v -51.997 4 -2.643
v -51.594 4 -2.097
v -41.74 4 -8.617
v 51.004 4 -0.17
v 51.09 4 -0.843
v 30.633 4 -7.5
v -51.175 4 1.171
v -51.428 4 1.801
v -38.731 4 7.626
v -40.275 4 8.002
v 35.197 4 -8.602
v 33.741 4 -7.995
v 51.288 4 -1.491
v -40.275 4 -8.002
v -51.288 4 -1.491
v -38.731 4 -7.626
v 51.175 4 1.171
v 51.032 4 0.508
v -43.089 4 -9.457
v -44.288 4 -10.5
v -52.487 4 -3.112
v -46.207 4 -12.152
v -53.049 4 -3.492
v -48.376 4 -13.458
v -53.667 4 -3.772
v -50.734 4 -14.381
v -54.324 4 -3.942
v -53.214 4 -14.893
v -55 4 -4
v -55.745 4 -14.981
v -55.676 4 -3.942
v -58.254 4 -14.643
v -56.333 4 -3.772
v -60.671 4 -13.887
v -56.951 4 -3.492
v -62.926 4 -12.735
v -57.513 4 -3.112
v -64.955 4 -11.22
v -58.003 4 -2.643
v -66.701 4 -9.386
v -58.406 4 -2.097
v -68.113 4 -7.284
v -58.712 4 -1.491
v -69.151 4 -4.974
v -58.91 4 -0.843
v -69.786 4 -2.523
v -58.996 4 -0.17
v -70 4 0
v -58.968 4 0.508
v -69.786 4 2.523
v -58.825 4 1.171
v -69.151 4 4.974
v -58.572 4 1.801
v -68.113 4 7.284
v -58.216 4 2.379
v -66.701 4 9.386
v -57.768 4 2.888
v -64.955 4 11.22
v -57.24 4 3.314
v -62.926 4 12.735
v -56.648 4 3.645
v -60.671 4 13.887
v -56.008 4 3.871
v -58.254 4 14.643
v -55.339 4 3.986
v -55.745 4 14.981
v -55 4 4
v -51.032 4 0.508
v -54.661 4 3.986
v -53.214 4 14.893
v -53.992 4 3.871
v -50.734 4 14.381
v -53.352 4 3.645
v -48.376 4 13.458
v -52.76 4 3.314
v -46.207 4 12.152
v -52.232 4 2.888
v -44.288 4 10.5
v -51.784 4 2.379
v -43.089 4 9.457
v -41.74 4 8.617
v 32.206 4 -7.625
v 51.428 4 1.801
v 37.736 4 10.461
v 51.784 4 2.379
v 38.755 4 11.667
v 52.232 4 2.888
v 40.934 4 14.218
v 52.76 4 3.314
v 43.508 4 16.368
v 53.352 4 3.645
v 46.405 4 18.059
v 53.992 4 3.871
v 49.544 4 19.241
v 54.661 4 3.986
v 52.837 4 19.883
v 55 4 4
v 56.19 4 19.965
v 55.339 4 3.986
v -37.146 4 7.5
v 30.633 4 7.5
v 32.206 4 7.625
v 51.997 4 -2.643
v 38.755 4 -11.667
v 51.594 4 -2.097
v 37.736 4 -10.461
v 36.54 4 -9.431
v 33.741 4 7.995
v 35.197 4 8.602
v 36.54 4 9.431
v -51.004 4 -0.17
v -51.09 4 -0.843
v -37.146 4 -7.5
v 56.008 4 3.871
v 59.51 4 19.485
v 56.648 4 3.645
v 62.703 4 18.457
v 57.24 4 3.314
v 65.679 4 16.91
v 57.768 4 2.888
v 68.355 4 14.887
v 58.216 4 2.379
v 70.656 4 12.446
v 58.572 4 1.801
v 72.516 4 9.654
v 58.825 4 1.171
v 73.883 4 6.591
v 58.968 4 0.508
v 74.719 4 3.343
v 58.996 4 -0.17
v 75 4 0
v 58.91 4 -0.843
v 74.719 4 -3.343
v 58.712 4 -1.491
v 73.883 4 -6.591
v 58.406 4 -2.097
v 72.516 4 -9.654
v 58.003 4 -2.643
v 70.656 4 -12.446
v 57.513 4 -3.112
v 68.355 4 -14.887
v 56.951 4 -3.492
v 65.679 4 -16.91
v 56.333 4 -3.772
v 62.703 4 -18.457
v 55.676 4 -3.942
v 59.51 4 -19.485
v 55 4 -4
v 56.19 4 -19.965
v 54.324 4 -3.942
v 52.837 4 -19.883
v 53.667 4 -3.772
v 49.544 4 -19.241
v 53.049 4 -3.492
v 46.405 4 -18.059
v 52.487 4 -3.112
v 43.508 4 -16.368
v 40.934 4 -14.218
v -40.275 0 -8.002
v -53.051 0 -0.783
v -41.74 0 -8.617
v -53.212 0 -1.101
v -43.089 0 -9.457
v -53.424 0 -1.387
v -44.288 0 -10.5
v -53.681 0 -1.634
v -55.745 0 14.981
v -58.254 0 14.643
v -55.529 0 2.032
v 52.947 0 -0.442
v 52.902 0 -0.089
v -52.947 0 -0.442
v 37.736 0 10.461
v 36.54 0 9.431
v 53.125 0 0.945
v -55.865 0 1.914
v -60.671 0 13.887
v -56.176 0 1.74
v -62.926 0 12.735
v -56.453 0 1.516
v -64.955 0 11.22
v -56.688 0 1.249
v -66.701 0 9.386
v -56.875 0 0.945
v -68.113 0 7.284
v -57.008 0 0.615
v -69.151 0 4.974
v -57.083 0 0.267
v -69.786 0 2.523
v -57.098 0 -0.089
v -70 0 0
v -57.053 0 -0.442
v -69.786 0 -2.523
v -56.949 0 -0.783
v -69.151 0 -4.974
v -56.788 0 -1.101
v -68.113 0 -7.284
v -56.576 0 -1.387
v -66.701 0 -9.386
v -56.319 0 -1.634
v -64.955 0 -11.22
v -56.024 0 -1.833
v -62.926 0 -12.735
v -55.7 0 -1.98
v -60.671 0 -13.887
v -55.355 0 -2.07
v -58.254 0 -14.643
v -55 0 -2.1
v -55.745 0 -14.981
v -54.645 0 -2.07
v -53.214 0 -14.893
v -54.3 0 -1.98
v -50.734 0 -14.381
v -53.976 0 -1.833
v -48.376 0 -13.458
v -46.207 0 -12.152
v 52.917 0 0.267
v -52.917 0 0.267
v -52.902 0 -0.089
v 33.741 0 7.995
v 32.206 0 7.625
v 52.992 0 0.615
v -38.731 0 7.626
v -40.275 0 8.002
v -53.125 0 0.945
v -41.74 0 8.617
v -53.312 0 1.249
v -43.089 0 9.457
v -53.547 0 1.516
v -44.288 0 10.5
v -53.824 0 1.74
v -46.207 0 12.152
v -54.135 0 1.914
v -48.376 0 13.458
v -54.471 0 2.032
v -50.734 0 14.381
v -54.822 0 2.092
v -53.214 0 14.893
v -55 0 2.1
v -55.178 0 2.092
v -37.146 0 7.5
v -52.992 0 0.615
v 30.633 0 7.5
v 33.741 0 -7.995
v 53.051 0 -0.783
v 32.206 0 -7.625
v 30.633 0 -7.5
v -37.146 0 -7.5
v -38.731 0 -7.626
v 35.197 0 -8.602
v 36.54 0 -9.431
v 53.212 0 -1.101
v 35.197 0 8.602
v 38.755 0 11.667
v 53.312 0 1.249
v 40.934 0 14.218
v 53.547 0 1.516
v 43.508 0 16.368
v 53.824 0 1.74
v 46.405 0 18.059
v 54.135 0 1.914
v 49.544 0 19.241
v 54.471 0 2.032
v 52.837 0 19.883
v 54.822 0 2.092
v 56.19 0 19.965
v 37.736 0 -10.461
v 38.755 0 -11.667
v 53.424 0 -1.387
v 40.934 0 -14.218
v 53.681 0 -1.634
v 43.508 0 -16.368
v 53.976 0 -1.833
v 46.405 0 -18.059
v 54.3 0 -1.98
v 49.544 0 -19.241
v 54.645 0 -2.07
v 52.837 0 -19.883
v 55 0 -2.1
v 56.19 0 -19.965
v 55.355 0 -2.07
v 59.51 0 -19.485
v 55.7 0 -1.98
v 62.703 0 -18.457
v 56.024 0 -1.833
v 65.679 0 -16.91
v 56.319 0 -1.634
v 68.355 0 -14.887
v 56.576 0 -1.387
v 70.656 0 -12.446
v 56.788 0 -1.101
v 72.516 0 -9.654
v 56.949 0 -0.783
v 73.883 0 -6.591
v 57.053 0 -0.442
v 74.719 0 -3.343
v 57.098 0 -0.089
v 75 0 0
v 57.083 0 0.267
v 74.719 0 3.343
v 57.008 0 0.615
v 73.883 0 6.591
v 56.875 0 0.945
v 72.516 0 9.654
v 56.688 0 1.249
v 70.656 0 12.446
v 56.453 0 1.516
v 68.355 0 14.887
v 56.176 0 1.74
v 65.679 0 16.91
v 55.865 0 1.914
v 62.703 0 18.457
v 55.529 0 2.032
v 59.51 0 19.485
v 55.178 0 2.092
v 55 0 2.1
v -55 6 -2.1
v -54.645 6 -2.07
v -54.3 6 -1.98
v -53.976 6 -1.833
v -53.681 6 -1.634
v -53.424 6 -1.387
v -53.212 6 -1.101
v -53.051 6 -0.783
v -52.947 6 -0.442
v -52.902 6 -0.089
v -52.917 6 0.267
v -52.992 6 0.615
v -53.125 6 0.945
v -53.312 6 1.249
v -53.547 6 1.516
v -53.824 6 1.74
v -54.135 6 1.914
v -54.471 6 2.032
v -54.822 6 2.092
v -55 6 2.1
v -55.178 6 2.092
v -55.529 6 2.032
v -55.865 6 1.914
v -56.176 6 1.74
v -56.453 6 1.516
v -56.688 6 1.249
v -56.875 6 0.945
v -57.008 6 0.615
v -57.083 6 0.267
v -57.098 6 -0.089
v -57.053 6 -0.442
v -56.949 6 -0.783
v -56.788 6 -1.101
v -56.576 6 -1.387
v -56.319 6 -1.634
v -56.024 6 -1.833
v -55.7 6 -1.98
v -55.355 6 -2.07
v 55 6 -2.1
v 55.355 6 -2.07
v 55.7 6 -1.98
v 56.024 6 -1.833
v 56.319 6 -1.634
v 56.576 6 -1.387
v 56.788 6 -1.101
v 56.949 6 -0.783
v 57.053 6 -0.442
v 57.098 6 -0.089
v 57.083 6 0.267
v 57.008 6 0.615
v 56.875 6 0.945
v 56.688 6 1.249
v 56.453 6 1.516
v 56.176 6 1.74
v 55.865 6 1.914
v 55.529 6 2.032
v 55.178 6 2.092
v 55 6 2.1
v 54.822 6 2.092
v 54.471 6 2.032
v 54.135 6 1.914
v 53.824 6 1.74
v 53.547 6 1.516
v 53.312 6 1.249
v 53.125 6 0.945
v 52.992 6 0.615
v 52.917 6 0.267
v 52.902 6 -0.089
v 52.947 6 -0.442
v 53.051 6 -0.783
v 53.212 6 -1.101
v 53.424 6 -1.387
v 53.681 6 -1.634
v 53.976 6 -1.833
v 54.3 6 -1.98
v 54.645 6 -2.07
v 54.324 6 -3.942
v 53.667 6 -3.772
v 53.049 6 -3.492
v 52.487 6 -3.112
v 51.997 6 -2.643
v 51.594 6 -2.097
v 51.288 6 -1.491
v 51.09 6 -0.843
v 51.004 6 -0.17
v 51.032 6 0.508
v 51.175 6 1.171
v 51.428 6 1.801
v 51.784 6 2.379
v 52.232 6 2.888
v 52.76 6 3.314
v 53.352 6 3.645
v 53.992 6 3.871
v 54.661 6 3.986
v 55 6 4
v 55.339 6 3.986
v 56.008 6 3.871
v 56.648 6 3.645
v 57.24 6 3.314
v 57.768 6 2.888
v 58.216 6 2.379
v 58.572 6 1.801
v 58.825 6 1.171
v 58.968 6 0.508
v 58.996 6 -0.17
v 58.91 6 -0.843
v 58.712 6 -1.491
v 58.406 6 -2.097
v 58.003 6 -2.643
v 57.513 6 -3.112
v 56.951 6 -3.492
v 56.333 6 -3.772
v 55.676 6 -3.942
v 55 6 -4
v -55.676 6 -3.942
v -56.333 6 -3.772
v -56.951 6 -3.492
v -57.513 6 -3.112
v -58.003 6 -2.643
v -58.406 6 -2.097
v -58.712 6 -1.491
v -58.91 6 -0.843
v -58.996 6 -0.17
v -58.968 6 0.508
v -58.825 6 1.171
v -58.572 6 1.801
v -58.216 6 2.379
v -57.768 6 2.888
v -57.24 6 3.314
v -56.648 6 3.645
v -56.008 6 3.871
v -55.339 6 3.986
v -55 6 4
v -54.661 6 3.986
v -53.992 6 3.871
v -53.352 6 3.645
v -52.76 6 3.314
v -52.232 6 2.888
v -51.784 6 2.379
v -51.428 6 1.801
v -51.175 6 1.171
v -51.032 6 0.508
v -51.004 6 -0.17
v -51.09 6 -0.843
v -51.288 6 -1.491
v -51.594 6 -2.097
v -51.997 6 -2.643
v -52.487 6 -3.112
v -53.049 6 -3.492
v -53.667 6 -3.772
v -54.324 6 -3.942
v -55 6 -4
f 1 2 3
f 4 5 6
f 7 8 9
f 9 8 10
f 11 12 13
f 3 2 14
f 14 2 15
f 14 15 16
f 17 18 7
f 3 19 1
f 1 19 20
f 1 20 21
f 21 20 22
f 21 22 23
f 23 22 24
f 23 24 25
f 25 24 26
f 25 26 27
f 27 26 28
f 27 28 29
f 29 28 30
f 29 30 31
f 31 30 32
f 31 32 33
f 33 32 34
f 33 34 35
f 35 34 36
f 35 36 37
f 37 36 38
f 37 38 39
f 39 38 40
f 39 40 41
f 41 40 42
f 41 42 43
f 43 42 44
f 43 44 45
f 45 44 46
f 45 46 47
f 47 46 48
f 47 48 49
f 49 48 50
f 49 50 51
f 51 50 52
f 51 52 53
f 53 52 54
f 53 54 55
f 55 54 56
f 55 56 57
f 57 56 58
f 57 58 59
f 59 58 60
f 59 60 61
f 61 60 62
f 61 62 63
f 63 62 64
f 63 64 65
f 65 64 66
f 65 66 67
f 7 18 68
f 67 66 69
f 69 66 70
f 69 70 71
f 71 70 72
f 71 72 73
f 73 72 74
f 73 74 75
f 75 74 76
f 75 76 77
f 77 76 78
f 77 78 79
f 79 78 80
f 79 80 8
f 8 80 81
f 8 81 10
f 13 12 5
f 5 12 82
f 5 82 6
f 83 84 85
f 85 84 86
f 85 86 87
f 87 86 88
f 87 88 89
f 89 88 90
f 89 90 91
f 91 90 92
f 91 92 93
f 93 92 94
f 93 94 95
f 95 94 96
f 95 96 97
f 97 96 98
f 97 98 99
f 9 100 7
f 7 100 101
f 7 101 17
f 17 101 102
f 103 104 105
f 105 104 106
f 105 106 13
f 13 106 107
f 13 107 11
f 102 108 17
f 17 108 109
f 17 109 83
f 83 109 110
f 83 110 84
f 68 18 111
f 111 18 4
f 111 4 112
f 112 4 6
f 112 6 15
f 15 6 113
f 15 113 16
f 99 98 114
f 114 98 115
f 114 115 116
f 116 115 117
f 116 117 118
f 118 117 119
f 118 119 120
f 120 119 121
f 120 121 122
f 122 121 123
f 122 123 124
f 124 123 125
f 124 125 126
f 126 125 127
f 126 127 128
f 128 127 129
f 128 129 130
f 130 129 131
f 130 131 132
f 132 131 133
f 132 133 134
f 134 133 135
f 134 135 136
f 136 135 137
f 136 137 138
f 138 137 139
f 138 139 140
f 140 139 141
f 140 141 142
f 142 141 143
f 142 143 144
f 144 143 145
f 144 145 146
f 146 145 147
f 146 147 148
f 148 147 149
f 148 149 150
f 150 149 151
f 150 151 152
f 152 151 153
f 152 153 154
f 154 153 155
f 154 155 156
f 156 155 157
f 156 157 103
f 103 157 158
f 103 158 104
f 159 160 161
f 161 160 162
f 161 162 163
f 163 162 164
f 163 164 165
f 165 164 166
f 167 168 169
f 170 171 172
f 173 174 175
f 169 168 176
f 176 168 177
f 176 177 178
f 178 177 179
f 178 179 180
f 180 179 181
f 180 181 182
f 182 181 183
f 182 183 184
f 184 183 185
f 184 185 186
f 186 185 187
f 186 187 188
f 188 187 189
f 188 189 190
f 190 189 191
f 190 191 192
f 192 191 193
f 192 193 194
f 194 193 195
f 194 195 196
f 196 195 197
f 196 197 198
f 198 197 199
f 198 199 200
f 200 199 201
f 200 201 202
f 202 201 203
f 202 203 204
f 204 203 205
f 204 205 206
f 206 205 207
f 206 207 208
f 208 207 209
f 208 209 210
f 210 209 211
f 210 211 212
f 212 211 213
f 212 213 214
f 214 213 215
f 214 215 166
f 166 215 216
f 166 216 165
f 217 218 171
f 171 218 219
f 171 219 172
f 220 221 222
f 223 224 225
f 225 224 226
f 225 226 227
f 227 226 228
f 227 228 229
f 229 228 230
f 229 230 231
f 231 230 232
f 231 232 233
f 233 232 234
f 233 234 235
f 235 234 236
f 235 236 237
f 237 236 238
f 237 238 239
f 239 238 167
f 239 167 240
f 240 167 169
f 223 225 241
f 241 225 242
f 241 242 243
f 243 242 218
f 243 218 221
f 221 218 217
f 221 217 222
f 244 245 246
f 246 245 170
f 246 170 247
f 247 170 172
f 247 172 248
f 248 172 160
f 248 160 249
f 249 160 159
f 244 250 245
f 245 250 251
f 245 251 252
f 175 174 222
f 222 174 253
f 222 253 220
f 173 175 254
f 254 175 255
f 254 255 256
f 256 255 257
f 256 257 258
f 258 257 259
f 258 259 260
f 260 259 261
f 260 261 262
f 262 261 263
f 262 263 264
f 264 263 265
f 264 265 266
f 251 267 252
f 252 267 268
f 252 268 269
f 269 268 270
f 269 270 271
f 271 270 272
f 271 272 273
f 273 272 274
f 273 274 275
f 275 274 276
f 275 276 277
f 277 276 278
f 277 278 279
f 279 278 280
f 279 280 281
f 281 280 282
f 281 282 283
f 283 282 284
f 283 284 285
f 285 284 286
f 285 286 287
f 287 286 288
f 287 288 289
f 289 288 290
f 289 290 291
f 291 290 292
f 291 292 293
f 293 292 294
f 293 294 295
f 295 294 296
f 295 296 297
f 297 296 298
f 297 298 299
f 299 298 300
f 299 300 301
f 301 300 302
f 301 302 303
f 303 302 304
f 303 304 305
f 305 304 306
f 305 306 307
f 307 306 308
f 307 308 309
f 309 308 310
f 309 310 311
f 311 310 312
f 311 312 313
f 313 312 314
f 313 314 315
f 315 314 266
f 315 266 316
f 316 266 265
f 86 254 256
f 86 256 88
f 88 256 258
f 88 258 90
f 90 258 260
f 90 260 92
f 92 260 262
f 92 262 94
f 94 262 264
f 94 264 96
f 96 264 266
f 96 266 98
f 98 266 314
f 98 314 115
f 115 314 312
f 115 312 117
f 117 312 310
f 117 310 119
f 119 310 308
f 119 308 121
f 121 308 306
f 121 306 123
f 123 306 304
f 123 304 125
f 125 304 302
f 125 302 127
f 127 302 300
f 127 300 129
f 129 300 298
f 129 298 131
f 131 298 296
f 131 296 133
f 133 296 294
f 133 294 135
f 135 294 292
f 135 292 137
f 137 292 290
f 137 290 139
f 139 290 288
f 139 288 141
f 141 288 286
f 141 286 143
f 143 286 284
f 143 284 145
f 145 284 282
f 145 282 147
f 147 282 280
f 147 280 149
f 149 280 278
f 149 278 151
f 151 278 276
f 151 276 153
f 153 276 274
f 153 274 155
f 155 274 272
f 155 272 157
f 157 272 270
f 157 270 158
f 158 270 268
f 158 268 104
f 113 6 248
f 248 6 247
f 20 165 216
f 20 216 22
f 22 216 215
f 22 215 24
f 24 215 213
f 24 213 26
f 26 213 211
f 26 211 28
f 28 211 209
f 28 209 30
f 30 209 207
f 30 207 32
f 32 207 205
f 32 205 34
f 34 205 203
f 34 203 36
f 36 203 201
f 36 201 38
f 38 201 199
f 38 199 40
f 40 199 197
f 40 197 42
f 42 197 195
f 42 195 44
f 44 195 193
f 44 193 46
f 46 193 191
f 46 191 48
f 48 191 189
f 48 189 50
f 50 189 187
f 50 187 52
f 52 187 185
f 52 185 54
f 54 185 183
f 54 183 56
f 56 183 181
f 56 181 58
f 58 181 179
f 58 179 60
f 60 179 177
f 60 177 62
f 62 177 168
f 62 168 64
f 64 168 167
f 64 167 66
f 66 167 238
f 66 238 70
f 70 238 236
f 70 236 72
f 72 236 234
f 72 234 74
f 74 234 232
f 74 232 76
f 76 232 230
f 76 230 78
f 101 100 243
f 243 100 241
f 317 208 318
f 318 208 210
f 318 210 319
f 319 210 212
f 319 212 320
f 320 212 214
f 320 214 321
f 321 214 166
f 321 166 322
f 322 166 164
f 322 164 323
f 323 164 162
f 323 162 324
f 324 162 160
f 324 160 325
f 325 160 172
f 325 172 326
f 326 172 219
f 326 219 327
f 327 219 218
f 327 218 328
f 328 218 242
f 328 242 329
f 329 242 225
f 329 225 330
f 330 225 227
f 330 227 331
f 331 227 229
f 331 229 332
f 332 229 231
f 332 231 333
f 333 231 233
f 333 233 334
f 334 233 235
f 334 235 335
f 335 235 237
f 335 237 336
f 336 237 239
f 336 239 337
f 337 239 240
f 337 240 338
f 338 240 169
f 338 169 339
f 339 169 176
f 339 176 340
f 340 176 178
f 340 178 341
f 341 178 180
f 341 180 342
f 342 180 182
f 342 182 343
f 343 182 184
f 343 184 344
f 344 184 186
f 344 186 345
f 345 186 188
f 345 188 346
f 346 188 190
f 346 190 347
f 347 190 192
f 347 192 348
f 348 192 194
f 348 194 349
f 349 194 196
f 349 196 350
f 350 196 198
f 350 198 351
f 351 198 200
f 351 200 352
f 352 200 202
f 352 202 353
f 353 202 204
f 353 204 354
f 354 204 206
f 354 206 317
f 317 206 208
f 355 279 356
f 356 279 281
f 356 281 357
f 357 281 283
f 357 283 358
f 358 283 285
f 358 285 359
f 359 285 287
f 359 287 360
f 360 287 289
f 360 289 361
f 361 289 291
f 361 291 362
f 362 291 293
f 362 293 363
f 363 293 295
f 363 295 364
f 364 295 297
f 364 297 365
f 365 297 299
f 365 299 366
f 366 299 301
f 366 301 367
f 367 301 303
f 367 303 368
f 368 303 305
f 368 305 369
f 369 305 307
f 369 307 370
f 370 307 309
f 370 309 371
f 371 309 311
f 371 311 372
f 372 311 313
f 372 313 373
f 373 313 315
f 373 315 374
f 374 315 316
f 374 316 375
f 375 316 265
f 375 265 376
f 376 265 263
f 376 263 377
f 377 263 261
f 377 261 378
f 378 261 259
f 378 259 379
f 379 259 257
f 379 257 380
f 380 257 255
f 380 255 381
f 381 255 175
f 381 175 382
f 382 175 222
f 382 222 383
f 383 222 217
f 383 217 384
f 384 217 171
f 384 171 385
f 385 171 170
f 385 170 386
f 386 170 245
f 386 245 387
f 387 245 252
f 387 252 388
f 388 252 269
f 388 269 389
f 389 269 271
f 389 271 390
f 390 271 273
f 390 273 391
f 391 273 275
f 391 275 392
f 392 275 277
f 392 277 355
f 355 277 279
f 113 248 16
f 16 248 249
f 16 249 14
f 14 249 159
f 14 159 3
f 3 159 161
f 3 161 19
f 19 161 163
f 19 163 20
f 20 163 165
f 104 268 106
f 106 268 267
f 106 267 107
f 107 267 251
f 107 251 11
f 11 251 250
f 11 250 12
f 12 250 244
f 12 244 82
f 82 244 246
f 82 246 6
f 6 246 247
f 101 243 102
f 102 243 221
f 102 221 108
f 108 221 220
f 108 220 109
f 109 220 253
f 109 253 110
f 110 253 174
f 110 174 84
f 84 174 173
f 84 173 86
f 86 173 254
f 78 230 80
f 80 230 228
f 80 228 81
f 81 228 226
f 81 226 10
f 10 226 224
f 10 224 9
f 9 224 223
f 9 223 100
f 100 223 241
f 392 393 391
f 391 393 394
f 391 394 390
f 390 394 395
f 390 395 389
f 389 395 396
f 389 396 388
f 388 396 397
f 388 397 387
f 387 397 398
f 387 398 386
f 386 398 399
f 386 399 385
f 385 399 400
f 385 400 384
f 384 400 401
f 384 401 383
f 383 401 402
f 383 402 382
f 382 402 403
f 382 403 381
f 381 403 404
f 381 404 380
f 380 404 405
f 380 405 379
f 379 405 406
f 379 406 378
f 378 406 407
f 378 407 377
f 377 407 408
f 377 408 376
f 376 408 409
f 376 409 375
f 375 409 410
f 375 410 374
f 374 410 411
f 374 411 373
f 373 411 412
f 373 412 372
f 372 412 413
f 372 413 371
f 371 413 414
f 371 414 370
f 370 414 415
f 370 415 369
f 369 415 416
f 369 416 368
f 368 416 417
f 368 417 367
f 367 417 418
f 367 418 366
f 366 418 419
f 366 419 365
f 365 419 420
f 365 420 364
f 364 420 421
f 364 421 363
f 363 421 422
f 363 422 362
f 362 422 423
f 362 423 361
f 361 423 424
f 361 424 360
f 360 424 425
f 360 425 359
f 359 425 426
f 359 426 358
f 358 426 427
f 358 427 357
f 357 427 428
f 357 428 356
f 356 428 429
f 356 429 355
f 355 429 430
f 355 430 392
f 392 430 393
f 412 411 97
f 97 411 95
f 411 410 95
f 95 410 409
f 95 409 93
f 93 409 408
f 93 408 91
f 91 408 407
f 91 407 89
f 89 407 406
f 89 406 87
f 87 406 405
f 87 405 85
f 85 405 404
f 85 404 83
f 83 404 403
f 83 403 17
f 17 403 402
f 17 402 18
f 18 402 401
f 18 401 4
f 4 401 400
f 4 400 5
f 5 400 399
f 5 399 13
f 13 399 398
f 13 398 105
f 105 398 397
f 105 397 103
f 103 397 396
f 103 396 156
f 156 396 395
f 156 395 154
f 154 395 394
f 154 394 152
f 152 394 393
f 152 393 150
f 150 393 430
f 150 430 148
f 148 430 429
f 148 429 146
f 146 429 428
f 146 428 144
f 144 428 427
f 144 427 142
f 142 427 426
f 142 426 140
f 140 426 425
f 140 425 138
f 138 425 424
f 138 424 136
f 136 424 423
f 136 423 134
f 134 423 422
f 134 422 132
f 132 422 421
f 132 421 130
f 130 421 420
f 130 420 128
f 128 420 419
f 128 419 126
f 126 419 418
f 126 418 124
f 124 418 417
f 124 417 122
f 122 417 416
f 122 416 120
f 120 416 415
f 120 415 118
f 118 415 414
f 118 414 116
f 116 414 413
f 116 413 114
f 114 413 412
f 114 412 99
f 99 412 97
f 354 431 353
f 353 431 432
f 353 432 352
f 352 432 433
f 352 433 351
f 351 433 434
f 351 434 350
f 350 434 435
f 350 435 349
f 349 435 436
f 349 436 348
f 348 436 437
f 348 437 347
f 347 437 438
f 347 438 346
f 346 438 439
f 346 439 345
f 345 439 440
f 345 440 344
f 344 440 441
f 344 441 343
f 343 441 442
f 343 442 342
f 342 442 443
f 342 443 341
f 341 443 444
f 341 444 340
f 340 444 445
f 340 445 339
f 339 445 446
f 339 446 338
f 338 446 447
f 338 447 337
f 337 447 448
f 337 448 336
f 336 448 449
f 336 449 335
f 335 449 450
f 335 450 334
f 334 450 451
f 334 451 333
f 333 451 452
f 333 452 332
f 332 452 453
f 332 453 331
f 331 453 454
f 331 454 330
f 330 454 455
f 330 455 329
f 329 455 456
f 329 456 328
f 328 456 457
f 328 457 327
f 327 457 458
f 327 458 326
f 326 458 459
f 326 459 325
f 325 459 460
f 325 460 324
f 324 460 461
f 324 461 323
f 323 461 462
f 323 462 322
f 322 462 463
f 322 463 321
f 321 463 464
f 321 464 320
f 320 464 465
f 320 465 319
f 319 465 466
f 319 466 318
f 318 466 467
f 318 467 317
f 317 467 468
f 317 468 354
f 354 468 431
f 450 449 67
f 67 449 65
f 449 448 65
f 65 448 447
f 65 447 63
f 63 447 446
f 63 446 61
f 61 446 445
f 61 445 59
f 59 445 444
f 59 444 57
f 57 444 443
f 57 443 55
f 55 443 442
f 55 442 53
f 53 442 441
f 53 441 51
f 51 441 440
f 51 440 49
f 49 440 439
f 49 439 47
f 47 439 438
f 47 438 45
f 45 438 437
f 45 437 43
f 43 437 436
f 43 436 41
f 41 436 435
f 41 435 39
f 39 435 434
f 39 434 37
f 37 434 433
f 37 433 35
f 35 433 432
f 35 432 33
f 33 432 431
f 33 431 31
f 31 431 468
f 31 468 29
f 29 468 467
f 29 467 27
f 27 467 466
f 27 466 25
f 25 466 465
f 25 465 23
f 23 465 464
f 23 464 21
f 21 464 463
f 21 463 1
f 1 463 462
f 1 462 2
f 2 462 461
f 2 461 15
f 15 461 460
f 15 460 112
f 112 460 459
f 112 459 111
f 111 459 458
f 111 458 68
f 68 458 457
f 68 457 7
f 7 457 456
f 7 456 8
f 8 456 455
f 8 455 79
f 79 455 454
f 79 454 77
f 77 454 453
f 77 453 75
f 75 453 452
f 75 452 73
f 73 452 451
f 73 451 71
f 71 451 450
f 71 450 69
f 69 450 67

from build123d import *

# Parameters (mm, degrees)
SKETCH1_R           = 2.1
BOSS_EXTRUDE1_DEPTH = 4
FILLET1_R           = 10
SKETCH2_R           = 4
SKETCH2_R_2         = 2.1
BOSS_EXTRUDE2_DEPTH = 2


with BuildPart() as part:
    # Sketch1 → Boss-Extrude1 (new body)
    with BuildSketch(Plane(origin=(0, 0, 0), x_dir=(1, 0, 0), z_dir=(0, 1, 0))):
        with BuildLine():
            Line((-42.009618943, 7.5), (36.459503782, 7.5))
            ThreePointArc((36.459503782, 7.5), (75, 0), (36.459503782, -7.5))
            Line((36.459503782, -7.5), (-42.009618943, -7.5))
            ThreePointArc((-42.009618943, -7.5), (-70, 0), (-42.009618943, 7.5))
        make_face()
        with Locations(Location((-55, 0, 0), (0, 0, 270))):
            Circle(SKETCH1_R, mode=Mode.SUBTRACT)
        with Locations(Location((55, 0, 0), (0, 0, 270))):
            Circle(SKETCH1_R, mode=Mode.SUBTRACT)
    extrude(amount=BOSS_EXTRUDE1_DEPTH)

    # Fillet1
    fillet1_edges = [part.edges().sort_by_distance(p)[0] for p in [
        (36.459503782, 2, 7.5),
        (-42.009618943, 2, 7.5),
        (-42.009618943, 2, -7.5),
        (36.459503782, 2, -7.5),
    ]]
    fillet(fillet1_edges, radius=FILLET1_R)

    # Sketch2 → Boss-Extrude2 (add)
    # profile 1 of 2: a face of its own
    with BuildSketch(Plane(origin=(0, 4, 0), x_dir=(1, 0, 0), z_dir=(0, 1, 0))):
        with Locations(Location((55, 0, 0), (0, 0, 270))):
            Circle(SKETCH2_R)
        with Locations(Location((55, 0, 0), (0, 0, 270))):
            Circle(SKETCH2_R_2, mode=Mode.SUBTRACT)
    # profile 2 of 2: a face of its own
    with BuildSketch(Plane(origin=(0, 4, 0), x_dir=(1, 0, 0), z_dir=(0, 1, 0))):
        with Locations(Location((-55, 0, 0), (0, 0, 270))):
            Circle(SKETCH2_R)
        with Locations(Location((-55, 0, 0), (0, 0, 270))):
            Circle(SKETCH2_R_2, mode=Mode.SUBTRACT)
    extrude(amount=BOSS_EXTRUDE2_DEPTH)


solid = part.part
